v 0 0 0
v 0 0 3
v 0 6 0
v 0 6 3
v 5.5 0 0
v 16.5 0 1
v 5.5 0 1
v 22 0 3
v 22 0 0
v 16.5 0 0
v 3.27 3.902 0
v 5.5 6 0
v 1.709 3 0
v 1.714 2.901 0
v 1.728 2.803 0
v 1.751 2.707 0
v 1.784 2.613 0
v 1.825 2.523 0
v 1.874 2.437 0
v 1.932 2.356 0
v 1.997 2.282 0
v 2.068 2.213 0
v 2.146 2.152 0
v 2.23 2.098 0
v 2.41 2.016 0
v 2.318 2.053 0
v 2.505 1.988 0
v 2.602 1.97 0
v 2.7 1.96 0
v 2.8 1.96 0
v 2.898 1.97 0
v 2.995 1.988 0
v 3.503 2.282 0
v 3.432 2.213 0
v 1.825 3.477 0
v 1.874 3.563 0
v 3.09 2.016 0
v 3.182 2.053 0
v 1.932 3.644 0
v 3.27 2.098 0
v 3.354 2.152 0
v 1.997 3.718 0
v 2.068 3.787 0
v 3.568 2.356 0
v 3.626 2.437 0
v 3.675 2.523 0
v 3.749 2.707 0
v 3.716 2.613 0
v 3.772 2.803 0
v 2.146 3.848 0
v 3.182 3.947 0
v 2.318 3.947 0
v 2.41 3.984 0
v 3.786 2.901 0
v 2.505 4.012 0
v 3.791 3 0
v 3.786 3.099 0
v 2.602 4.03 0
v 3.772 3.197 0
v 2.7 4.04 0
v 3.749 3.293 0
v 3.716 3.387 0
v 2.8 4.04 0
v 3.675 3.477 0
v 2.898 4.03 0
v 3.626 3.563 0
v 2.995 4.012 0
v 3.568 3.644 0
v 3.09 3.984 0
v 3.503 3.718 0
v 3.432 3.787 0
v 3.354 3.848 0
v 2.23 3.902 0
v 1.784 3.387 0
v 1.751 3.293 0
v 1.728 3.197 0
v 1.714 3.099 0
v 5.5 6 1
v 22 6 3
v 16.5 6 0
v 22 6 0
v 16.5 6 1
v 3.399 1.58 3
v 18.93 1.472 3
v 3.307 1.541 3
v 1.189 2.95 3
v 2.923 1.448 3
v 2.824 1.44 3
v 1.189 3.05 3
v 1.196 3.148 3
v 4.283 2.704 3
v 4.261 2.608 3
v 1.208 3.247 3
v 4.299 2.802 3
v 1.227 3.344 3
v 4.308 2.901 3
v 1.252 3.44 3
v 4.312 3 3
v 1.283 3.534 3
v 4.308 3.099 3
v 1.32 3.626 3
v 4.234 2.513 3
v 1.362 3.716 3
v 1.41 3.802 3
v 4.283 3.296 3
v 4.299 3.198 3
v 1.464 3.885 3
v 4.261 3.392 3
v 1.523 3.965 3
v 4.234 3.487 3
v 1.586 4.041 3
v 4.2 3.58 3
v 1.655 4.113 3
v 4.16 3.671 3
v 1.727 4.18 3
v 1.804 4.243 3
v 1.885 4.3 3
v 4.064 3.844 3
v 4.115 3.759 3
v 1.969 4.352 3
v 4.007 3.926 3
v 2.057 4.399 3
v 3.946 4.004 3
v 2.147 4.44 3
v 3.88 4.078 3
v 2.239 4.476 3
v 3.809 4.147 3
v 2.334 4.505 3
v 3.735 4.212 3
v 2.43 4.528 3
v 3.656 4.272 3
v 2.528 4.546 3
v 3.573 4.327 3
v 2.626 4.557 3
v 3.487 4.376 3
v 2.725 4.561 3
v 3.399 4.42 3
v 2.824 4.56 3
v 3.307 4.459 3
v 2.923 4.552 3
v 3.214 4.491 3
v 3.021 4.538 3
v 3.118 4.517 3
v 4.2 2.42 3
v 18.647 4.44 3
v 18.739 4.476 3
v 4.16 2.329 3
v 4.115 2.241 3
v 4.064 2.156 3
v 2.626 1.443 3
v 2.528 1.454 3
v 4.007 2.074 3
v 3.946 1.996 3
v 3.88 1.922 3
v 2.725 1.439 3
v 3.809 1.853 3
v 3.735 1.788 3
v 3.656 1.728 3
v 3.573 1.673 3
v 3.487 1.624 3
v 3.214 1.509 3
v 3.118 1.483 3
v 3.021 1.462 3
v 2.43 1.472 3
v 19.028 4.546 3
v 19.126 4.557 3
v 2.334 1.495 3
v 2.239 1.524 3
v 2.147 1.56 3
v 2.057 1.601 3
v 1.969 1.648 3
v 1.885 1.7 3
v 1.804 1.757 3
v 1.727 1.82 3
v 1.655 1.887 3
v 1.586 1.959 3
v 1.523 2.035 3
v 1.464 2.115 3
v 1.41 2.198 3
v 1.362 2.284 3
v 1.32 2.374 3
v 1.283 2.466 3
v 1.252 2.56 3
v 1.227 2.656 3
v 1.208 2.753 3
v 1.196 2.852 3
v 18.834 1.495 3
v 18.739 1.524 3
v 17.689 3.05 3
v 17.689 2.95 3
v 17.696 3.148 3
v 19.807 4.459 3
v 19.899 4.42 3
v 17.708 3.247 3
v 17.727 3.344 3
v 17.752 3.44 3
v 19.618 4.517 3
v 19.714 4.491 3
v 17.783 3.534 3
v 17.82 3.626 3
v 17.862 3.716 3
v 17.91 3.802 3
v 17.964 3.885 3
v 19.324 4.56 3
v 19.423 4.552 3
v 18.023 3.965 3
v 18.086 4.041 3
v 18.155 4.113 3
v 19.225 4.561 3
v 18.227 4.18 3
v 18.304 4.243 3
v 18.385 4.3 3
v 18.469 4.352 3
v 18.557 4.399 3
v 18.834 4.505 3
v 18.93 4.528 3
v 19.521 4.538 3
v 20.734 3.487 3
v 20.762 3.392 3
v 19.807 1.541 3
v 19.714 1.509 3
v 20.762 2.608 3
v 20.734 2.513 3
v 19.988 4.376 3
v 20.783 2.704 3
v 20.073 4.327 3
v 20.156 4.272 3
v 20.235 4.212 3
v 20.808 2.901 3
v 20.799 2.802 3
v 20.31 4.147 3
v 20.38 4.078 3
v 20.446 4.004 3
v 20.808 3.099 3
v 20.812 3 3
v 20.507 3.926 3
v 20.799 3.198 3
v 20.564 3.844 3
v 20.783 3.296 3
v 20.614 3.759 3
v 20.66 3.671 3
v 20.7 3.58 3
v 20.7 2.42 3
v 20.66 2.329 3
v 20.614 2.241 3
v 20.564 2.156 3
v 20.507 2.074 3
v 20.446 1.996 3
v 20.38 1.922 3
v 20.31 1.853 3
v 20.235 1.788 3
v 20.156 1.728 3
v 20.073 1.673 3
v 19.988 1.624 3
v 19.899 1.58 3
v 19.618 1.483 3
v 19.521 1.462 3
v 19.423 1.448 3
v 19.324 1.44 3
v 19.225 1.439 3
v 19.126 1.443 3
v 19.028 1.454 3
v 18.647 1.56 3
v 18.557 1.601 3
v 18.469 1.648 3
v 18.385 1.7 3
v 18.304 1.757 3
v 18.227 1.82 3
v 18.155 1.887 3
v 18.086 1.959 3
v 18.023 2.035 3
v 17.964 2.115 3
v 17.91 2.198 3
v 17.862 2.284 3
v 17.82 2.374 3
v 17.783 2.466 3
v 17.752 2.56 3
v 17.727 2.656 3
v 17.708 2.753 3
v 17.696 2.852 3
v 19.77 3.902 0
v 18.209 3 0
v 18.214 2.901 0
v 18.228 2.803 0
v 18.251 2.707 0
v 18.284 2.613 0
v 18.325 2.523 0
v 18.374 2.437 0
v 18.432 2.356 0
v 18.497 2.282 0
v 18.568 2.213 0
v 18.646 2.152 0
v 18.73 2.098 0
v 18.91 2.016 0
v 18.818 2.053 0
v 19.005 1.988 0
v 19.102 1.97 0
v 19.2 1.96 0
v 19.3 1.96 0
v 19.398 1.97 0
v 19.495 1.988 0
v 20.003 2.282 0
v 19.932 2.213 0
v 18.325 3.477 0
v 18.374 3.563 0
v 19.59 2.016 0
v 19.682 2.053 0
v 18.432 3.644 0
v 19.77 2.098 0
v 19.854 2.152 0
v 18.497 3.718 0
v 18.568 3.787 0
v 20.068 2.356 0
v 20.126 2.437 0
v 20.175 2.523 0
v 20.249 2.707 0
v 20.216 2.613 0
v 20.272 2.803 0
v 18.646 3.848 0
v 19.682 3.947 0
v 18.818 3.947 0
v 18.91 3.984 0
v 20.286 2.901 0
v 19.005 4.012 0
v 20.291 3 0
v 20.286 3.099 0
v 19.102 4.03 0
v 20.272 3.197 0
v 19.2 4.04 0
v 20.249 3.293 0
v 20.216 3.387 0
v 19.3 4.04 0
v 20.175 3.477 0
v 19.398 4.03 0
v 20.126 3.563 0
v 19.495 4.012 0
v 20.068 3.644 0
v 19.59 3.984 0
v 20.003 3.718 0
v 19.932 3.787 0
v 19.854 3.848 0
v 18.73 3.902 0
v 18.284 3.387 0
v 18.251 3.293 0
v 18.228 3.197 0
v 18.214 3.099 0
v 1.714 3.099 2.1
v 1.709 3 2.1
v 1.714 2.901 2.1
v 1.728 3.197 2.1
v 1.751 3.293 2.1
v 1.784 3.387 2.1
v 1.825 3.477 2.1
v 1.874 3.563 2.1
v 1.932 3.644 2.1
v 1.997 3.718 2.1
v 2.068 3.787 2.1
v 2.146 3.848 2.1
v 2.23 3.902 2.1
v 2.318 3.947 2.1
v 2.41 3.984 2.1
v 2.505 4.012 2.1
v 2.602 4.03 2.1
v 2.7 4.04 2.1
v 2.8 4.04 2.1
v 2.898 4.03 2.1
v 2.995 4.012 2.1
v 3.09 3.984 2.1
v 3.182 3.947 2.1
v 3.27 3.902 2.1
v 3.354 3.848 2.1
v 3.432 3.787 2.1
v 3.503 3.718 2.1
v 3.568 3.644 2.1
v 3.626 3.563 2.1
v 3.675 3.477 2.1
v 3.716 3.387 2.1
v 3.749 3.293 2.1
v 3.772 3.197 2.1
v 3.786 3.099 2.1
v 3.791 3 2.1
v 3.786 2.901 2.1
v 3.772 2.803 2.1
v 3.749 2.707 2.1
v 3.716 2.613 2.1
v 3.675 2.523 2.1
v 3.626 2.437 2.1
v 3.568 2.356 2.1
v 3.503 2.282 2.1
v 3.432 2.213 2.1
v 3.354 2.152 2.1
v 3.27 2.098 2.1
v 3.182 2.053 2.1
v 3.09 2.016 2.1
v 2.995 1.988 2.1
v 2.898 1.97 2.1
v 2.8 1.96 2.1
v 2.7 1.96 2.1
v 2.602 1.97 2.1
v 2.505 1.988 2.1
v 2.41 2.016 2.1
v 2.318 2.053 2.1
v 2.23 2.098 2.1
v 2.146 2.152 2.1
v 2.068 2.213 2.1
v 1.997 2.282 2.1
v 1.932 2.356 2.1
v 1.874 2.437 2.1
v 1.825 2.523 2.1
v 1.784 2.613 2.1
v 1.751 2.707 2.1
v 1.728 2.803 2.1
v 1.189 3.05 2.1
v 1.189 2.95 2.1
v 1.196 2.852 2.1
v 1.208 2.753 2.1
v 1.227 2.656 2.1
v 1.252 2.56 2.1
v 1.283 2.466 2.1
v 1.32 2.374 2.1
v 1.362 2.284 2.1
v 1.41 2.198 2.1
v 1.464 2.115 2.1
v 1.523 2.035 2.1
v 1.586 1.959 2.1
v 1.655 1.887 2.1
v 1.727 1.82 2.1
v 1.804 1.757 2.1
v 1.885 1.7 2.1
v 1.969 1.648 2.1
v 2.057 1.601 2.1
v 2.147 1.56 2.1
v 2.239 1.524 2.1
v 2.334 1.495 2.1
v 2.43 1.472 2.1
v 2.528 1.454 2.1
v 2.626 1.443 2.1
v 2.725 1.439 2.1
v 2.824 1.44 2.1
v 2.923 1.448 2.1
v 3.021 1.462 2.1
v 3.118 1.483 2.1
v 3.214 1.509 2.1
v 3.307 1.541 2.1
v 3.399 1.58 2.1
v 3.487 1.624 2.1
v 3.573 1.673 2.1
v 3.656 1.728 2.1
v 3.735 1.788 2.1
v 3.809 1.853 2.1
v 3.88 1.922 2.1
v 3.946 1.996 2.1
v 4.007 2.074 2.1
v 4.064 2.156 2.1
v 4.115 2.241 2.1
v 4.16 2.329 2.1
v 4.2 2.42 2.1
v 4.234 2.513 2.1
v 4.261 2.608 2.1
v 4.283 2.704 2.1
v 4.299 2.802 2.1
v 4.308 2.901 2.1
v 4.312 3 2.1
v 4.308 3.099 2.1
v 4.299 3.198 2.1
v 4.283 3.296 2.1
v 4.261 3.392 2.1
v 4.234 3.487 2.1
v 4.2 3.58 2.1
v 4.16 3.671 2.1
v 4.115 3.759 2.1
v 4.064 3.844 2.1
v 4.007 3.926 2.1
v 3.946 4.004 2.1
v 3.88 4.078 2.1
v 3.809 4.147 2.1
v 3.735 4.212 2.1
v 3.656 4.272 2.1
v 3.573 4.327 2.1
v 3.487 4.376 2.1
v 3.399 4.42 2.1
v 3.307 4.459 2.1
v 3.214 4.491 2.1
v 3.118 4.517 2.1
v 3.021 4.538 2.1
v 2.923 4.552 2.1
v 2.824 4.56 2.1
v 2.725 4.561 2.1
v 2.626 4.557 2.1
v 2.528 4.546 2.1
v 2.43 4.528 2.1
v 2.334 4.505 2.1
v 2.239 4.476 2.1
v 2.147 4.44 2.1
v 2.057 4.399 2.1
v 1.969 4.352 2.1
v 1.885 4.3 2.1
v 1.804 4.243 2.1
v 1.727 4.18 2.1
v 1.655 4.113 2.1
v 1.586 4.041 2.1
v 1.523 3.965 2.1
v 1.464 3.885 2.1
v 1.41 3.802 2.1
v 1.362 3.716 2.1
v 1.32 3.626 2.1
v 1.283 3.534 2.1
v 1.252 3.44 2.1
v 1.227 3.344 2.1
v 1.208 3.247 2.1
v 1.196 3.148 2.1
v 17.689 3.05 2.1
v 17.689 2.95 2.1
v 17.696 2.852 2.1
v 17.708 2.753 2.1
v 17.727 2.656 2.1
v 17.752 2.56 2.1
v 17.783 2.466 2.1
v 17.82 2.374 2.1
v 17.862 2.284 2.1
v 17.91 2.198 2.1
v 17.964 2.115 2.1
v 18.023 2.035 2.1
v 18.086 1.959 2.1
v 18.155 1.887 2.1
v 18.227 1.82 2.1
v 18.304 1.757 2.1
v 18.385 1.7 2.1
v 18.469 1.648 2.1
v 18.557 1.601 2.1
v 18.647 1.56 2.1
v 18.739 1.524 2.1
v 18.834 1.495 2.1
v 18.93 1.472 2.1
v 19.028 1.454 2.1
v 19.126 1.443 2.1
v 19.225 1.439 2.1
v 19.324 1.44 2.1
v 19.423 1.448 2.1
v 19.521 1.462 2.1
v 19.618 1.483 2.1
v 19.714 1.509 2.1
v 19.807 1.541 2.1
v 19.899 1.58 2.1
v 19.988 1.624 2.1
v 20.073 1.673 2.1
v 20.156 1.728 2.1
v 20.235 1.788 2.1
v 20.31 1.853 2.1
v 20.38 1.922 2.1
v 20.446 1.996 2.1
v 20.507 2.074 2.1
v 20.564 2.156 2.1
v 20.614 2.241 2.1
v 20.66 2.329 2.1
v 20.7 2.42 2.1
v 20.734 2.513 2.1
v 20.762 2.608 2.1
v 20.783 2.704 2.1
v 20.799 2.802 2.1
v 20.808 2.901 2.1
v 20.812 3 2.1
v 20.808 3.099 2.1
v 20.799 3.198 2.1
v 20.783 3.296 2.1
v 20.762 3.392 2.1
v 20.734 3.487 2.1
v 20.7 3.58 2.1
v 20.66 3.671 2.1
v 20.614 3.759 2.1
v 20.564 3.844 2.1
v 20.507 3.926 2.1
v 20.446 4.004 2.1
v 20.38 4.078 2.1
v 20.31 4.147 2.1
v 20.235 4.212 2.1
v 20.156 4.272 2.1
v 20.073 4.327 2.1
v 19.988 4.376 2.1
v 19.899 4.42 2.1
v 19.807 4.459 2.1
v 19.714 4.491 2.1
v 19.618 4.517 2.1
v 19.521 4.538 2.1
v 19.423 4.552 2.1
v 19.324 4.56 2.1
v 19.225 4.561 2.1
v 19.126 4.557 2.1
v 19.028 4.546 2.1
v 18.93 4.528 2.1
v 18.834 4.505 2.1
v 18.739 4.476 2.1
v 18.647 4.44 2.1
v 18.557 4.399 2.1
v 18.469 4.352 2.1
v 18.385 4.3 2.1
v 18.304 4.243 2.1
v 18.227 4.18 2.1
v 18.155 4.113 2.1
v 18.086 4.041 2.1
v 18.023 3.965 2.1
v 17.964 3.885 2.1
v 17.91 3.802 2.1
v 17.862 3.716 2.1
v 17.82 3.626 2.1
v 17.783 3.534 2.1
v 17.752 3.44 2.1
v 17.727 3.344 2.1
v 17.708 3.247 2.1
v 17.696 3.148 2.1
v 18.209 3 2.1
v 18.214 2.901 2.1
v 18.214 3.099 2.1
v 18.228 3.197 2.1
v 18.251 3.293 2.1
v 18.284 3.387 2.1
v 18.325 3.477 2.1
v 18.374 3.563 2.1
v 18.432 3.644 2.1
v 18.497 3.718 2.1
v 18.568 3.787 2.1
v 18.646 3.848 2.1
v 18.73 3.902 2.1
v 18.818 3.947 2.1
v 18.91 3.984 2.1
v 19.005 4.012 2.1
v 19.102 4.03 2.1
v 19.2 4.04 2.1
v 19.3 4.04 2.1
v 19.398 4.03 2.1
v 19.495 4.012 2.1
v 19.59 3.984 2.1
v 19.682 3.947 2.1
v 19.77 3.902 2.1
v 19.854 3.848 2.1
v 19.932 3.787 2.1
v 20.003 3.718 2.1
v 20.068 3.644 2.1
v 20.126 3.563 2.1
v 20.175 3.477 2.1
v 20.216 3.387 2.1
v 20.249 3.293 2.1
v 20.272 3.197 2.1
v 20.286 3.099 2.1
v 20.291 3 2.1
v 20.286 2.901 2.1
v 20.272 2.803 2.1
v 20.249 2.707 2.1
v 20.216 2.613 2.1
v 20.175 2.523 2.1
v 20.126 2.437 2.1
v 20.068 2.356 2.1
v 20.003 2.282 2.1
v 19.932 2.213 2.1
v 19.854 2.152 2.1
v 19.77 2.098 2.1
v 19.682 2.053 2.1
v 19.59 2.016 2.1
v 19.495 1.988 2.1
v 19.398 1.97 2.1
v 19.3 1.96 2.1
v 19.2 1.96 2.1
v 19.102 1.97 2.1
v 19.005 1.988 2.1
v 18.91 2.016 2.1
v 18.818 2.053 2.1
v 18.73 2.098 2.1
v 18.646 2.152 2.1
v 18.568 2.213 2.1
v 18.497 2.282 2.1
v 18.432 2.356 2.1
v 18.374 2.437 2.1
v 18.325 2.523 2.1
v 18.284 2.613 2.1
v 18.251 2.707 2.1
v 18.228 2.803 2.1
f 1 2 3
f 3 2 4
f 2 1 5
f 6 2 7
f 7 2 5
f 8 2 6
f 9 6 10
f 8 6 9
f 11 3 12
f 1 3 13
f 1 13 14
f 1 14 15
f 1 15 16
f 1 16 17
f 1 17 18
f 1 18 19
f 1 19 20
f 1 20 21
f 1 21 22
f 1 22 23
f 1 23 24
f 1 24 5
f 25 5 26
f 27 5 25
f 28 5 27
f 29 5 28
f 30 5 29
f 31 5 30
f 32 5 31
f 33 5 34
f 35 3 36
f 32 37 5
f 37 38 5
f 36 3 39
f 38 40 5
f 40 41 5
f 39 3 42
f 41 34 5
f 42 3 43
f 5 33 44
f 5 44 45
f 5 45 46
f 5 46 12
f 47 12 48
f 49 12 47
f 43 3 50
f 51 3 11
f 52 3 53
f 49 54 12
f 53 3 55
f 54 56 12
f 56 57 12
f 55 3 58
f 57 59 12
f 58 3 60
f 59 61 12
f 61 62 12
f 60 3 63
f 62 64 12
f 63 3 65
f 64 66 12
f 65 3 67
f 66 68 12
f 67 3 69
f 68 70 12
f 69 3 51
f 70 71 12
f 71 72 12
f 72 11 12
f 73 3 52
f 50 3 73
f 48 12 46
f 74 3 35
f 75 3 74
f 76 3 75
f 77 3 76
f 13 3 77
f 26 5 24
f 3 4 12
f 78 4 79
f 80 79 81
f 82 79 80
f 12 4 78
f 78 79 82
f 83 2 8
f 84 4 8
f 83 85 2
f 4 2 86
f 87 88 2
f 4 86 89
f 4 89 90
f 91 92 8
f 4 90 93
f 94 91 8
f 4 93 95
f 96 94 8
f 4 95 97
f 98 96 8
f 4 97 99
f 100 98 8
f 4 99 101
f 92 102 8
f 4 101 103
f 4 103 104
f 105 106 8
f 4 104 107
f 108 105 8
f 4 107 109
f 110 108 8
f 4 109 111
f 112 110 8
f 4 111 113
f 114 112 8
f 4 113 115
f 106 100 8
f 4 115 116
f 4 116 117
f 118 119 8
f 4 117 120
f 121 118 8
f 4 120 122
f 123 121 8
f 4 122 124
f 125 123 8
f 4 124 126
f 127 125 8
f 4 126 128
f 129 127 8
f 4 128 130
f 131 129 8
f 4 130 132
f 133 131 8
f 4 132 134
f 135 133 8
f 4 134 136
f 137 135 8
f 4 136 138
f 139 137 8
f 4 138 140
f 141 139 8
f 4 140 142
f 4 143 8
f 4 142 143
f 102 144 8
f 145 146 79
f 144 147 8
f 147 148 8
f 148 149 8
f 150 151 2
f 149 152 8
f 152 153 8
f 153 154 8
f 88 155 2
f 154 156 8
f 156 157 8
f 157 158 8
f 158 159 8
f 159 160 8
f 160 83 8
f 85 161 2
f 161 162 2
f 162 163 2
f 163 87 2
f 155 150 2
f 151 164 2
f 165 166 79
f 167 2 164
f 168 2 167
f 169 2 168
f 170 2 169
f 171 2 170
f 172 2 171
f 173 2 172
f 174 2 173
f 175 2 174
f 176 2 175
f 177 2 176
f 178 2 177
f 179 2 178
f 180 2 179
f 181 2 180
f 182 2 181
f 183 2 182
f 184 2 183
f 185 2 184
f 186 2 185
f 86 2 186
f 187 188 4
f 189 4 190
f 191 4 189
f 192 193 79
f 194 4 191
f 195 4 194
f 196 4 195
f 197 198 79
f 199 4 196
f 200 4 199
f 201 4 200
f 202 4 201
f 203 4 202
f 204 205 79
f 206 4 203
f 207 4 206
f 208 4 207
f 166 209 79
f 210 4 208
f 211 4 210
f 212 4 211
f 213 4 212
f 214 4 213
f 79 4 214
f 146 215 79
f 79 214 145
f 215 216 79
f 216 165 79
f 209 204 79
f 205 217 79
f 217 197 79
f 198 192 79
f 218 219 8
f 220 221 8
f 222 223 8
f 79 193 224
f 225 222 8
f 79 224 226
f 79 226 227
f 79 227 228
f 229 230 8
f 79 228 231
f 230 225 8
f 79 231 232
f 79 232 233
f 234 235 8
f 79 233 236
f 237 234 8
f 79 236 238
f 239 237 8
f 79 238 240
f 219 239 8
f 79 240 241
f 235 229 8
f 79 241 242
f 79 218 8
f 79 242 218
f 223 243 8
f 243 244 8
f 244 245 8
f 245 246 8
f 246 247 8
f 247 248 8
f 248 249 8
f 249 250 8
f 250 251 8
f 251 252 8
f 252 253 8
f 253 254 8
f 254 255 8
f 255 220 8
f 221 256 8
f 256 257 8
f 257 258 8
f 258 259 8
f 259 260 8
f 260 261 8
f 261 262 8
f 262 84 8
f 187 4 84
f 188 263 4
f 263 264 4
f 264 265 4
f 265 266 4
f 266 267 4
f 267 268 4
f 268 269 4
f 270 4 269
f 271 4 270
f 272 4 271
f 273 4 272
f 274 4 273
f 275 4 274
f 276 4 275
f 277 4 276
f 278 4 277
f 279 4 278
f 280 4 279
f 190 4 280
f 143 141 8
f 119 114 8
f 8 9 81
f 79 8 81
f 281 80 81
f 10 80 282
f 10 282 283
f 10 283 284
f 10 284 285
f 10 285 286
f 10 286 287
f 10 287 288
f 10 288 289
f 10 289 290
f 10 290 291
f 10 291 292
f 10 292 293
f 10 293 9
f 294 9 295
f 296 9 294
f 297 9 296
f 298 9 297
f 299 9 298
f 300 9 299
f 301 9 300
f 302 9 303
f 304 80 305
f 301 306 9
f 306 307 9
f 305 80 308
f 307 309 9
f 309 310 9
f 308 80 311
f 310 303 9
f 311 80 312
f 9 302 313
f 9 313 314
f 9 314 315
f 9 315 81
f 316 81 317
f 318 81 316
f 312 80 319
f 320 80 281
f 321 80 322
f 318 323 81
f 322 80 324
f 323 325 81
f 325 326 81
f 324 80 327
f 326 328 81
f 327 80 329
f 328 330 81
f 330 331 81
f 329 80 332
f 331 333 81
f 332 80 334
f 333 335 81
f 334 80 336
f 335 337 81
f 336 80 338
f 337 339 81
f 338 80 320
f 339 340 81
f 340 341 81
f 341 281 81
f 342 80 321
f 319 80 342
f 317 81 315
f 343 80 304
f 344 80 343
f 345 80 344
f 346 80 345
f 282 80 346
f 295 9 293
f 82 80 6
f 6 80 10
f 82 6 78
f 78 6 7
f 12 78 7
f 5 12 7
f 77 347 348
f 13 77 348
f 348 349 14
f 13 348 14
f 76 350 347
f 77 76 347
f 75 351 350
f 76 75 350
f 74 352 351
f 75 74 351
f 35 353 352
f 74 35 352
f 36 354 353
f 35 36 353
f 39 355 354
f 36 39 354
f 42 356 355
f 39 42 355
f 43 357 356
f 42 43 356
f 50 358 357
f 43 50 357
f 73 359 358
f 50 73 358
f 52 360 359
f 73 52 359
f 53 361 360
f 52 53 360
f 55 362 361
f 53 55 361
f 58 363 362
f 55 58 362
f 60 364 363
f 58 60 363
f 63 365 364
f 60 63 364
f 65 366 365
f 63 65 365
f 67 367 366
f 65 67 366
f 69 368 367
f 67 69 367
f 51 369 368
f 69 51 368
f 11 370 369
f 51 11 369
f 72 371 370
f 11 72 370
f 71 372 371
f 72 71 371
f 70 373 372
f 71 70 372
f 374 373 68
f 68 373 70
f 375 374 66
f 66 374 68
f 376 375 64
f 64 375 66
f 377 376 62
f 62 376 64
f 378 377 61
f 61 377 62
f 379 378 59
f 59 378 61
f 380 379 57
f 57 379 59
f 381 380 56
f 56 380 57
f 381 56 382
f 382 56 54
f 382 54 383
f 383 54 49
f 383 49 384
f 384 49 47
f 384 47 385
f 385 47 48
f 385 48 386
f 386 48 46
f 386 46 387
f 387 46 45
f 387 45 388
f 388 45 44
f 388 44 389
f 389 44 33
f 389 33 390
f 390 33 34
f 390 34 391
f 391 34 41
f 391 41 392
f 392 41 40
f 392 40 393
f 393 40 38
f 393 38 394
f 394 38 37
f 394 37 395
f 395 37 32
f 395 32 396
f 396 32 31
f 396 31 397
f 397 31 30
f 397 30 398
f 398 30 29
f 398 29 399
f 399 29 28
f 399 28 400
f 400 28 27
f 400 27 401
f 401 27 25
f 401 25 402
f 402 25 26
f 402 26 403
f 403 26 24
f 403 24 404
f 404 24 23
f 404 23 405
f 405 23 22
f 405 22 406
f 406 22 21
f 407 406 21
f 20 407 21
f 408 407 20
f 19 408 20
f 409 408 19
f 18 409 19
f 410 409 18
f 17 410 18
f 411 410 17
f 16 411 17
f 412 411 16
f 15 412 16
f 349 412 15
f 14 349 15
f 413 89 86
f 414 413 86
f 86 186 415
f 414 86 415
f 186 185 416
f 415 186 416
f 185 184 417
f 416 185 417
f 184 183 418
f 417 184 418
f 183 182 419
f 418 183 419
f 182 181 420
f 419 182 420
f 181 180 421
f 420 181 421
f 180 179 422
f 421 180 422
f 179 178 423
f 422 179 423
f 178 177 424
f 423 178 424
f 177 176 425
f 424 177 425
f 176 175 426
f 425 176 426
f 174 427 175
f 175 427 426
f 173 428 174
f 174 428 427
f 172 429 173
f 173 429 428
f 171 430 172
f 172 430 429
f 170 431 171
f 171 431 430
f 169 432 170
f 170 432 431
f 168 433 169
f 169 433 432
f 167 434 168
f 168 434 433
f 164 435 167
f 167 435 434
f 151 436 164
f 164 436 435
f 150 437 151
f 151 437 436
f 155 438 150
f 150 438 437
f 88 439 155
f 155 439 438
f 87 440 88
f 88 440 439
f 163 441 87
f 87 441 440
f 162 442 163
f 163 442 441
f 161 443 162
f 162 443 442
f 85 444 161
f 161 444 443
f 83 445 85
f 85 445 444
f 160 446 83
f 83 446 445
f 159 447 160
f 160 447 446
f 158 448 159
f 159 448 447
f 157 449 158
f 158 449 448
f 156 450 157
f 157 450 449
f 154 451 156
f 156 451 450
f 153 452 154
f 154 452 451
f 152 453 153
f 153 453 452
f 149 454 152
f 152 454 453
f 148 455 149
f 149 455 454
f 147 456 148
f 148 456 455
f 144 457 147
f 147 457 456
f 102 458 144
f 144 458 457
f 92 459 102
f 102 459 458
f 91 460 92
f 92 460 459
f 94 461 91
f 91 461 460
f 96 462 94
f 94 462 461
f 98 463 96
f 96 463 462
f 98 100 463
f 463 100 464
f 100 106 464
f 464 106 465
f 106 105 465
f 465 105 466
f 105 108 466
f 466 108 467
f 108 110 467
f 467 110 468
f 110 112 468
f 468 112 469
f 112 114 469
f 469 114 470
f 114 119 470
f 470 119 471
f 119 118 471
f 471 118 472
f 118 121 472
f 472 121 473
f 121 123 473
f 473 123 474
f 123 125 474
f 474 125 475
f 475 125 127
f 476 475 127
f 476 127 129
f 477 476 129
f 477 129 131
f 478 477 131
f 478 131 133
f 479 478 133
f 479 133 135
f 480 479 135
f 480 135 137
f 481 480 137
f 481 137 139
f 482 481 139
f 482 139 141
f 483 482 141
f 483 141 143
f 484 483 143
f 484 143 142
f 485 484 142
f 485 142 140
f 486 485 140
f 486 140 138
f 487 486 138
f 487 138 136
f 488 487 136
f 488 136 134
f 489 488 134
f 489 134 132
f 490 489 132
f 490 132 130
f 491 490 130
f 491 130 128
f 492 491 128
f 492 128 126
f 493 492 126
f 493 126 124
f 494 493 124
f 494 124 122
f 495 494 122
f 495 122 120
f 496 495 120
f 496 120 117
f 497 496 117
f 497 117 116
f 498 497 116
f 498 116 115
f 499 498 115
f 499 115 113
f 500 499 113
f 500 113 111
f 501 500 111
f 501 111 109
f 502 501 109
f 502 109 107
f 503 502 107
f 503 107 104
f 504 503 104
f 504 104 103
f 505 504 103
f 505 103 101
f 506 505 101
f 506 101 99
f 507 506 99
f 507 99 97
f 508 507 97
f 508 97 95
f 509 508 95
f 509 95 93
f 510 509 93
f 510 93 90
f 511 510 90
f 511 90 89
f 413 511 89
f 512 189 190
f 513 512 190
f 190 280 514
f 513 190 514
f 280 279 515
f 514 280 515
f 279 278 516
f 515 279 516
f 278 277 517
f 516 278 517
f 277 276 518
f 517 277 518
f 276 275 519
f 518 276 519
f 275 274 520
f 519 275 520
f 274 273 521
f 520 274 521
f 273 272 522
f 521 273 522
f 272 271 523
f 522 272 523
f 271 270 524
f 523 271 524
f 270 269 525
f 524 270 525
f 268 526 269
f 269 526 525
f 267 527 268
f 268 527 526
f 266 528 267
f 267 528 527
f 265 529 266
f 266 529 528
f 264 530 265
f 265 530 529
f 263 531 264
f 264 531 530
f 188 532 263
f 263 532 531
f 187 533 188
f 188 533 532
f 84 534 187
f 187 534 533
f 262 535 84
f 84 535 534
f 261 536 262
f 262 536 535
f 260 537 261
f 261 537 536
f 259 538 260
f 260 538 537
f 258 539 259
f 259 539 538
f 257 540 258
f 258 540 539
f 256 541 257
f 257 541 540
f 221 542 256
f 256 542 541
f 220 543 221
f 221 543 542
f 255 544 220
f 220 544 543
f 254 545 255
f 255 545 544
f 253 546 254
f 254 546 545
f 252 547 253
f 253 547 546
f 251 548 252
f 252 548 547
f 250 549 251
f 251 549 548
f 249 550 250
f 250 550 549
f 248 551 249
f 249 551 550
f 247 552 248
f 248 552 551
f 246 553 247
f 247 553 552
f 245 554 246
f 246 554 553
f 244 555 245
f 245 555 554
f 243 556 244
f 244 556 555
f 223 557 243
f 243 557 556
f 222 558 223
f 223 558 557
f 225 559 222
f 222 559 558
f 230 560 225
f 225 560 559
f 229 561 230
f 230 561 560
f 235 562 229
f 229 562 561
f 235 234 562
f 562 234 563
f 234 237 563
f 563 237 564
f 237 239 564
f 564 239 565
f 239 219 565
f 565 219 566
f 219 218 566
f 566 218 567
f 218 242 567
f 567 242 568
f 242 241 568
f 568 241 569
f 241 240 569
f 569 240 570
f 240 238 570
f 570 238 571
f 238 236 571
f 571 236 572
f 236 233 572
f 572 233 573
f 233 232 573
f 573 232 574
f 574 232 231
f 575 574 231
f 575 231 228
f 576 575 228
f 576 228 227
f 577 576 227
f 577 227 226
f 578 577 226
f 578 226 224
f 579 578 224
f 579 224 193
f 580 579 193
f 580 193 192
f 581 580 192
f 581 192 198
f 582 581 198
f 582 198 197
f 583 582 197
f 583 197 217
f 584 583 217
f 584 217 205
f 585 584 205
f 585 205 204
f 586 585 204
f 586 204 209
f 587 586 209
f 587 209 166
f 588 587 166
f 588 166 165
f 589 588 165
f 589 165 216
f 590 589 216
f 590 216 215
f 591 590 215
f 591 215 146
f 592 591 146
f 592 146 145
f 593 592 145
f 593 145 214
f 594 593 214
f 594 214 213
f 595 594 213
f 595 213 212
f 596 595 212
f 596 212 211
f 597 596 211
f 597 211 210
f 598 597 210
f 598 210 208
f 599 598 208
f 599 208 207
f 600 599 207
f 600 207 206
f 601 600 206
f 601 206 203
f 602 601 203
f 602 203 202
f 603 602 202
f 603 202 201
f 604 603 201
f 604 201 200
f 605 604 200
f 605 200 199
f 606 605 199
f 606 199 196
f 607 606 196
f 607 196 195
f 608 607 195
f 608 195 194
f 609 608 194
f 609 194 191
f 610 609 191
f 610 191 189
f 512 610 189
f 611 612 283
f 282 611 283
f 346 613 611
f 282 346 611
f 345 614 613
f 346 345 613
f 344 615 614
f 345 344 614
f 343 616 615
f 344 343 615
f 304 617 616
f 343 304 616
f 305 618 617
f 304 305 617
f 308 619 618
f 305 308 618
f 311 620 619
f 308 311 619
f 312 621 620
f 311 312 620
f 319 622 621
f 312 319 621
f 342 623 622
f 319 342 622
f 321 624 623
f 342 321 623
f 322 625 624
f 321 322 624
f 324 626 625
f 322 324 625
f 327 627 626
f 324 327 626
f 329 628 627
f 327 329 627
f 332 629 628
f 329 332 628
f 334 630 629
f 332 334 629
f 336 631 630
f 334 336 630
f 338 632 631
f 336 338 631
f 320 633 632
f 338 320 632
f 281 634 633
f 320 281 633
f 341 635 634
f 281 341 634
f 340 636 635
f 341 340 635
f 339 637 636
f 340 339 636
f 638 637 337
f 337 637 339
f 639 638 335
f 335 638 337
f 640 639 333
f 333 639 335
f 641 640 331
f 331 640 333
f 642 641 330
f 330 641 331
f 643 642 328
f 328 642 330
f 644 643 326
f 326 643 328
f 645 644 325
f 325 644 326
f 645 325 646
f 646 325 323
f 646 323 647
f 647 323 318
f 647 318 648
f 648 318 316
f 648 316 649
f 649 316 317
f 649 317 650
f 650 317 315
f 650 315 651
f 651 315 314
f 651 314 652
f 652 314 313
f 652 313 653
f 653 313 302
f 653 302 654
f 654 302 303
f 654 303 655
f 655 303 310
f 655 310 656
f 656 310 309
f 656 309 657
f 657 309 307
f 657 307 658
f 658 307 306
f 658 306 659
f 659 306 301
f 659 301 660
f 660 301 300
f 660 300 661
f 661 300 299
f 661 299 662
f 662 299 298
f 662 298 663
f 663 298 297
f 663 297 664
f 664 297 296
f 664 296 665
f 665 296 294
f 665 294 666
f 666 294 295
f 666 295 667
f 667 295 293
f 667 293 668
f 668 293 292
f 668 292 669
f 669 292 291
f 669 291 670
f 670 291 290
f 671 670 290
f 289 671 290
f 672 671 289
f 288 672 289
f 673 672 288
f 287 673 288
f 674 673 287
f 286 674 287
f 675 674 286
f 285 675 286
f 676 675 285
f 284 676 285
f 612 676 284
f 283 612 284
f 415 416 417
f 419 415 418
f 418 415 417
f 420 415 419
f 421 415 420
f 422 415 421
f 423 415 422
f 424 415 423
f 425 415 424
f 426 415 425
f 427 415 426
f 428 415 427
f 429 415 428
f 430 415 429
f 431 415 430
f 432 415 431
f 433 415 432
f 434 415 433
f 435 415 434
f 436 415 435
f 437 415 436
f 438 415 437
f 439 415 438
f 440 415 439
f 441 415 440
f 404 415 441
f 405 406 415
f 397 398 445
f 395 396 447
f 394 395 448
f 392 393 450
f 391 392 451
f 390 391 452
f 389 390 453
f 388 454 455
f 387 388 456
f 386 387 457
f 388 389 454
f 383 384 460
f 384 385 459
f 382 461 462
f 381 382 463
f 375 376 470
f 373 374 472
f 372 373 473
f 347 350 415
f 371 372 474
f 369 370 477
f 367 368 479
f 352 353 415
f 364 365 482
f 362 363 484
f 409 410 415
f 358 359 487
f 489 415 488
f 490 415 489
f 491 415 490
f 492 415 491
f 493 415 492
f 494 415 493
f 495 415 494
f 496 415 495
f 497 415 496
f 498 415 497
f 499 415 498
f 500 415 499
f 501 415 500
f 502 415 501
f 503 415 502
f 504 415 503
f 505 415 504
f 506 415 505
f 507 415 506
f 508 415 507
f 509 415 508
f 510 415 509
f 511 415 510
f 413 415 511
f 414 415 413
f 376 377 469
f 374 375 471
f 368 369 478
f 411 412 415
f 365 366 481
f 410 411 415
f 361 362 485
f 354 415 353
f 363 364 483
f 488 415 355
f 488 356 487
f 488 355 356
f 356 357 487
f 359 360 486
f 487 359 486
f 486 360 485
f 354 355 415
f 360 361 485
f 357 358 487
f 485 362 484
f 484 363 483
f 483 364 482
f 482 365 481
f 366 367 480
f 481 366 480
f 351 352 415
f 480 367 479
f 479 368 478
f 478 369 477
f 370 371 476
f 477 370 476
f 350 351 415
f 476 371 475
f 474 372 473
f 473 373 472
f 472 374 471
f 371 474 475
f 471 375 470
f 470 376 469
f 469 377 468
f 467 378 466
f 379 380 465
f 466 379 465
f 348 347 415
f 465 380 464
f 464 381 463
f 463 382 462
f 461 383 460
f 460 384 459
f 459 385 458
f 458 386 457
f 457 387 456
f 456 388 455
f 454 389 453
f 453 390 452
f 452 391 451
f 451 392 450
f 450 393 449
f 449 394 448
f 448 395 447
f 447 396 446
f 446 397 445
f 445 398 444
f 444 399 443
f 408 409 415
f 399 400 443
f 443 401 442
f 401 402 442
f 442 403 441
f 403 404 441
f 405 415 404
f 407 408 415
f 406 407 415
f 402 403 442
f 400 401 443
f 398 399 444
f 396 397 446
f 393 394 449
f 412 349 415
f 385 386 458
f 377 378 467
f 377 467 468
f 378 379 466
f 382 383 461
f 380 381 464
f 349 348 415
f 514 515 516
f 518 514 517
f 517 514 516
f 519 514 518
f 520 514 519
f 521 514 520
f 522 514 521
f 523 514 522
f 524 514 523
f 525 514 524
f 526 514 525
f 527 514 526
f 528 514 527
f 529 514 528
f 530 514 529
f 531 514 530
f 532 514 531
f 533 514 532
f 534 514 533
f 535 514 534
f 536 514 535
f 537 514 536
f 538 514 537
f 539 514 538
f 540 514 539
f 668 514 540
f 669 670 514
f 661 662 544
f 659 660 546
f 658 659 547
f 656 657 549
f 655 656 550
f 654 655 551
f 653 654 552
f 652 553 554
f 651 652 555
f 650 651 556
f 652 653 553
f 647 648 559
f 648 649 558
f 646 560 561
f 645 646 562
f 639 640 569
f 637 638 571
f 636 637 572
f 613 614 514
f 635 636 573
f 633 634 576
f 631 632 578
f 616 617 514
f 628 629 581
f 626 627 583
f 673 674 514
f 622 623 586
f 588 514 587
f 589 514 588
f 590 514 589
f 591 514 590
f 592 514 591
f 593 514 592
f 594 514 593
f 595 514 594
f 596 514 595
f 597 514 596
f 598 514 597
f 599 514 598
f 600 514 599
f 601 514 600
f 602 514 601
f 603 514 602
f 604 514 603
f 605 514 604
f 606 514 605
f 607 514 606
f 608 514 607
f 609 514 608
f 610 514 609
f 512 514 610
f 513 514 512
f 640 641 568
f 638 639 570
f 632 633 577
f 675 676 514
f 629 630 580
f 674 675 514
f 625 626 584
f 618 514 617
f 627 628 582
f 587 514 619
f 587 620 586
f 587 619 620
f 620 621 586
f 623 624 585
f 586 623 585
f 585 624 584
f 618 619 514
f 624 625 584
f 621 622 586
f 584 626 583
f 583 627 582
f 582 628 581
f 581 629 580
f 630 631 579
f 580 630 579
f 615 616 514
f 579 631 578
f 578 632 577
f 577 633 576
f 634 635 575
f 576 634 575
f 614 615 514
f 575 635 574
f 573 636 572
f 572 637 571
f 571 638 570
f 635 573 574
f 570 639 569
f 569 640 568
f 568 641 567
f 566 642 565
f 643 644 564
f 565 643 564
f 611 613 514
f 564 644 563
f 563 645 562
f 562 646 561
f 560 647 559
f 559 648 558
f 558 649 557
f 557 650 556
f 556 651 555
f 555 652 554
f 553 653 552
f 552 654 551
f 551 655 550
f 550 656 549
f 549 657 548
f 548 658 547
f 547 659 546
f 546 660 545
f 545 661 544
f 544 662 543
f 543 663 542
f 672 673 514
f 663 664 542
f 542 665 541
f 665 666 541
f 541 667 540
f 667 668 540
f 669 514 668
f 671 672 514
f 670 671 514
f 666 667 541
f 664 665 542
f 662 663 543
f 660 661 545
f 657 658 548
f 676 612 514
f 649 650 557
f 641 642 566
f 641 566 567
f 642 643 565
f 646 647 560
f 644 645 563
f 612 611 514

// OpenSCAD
inl = 11; // Inner cutout length
inw = 6;  // Inner cutout width
inh = 1;  // Inner cutout height
scd = 1.041; // Screw diameter (19 gauge)
ol  = 22;    // Outer cube length
ow  = inw;   // Outer cube width
oh  = 3;     // Outer cube height
wl = (ol-inl)/2.0; // Wing width (nails go through the wings)

$fs = 0.1;
$fa = 1.5;

difference() {
	// Outer cube to cut from
	cube([ol,ow,oh]);

	// Inner cutout (for LED strip)
	translate([5.5,-0.1,-0.1]) cube([inl,inw+0.2,inh+0.1]);
	
	// Counter-sunk screw hole #2
	union() {
		translate([ol-(wl/2),(ow/2),-0.1]) {
			cylinder(h=oh,r=scd); 
			translate([0,0,oh-0.8]) cylinder(h=1,r=scd*1.5);
		}
	}

	// Counter-sunk screw hole #1
	union() {
		translate([(wl/2),(ow/2),-0.1]) {
			cylinder(h=oh,r=scd);
			translate([0,0,oh-0.8]) cylinder(h=1,r=scd*1.5);
		}
	}
}
